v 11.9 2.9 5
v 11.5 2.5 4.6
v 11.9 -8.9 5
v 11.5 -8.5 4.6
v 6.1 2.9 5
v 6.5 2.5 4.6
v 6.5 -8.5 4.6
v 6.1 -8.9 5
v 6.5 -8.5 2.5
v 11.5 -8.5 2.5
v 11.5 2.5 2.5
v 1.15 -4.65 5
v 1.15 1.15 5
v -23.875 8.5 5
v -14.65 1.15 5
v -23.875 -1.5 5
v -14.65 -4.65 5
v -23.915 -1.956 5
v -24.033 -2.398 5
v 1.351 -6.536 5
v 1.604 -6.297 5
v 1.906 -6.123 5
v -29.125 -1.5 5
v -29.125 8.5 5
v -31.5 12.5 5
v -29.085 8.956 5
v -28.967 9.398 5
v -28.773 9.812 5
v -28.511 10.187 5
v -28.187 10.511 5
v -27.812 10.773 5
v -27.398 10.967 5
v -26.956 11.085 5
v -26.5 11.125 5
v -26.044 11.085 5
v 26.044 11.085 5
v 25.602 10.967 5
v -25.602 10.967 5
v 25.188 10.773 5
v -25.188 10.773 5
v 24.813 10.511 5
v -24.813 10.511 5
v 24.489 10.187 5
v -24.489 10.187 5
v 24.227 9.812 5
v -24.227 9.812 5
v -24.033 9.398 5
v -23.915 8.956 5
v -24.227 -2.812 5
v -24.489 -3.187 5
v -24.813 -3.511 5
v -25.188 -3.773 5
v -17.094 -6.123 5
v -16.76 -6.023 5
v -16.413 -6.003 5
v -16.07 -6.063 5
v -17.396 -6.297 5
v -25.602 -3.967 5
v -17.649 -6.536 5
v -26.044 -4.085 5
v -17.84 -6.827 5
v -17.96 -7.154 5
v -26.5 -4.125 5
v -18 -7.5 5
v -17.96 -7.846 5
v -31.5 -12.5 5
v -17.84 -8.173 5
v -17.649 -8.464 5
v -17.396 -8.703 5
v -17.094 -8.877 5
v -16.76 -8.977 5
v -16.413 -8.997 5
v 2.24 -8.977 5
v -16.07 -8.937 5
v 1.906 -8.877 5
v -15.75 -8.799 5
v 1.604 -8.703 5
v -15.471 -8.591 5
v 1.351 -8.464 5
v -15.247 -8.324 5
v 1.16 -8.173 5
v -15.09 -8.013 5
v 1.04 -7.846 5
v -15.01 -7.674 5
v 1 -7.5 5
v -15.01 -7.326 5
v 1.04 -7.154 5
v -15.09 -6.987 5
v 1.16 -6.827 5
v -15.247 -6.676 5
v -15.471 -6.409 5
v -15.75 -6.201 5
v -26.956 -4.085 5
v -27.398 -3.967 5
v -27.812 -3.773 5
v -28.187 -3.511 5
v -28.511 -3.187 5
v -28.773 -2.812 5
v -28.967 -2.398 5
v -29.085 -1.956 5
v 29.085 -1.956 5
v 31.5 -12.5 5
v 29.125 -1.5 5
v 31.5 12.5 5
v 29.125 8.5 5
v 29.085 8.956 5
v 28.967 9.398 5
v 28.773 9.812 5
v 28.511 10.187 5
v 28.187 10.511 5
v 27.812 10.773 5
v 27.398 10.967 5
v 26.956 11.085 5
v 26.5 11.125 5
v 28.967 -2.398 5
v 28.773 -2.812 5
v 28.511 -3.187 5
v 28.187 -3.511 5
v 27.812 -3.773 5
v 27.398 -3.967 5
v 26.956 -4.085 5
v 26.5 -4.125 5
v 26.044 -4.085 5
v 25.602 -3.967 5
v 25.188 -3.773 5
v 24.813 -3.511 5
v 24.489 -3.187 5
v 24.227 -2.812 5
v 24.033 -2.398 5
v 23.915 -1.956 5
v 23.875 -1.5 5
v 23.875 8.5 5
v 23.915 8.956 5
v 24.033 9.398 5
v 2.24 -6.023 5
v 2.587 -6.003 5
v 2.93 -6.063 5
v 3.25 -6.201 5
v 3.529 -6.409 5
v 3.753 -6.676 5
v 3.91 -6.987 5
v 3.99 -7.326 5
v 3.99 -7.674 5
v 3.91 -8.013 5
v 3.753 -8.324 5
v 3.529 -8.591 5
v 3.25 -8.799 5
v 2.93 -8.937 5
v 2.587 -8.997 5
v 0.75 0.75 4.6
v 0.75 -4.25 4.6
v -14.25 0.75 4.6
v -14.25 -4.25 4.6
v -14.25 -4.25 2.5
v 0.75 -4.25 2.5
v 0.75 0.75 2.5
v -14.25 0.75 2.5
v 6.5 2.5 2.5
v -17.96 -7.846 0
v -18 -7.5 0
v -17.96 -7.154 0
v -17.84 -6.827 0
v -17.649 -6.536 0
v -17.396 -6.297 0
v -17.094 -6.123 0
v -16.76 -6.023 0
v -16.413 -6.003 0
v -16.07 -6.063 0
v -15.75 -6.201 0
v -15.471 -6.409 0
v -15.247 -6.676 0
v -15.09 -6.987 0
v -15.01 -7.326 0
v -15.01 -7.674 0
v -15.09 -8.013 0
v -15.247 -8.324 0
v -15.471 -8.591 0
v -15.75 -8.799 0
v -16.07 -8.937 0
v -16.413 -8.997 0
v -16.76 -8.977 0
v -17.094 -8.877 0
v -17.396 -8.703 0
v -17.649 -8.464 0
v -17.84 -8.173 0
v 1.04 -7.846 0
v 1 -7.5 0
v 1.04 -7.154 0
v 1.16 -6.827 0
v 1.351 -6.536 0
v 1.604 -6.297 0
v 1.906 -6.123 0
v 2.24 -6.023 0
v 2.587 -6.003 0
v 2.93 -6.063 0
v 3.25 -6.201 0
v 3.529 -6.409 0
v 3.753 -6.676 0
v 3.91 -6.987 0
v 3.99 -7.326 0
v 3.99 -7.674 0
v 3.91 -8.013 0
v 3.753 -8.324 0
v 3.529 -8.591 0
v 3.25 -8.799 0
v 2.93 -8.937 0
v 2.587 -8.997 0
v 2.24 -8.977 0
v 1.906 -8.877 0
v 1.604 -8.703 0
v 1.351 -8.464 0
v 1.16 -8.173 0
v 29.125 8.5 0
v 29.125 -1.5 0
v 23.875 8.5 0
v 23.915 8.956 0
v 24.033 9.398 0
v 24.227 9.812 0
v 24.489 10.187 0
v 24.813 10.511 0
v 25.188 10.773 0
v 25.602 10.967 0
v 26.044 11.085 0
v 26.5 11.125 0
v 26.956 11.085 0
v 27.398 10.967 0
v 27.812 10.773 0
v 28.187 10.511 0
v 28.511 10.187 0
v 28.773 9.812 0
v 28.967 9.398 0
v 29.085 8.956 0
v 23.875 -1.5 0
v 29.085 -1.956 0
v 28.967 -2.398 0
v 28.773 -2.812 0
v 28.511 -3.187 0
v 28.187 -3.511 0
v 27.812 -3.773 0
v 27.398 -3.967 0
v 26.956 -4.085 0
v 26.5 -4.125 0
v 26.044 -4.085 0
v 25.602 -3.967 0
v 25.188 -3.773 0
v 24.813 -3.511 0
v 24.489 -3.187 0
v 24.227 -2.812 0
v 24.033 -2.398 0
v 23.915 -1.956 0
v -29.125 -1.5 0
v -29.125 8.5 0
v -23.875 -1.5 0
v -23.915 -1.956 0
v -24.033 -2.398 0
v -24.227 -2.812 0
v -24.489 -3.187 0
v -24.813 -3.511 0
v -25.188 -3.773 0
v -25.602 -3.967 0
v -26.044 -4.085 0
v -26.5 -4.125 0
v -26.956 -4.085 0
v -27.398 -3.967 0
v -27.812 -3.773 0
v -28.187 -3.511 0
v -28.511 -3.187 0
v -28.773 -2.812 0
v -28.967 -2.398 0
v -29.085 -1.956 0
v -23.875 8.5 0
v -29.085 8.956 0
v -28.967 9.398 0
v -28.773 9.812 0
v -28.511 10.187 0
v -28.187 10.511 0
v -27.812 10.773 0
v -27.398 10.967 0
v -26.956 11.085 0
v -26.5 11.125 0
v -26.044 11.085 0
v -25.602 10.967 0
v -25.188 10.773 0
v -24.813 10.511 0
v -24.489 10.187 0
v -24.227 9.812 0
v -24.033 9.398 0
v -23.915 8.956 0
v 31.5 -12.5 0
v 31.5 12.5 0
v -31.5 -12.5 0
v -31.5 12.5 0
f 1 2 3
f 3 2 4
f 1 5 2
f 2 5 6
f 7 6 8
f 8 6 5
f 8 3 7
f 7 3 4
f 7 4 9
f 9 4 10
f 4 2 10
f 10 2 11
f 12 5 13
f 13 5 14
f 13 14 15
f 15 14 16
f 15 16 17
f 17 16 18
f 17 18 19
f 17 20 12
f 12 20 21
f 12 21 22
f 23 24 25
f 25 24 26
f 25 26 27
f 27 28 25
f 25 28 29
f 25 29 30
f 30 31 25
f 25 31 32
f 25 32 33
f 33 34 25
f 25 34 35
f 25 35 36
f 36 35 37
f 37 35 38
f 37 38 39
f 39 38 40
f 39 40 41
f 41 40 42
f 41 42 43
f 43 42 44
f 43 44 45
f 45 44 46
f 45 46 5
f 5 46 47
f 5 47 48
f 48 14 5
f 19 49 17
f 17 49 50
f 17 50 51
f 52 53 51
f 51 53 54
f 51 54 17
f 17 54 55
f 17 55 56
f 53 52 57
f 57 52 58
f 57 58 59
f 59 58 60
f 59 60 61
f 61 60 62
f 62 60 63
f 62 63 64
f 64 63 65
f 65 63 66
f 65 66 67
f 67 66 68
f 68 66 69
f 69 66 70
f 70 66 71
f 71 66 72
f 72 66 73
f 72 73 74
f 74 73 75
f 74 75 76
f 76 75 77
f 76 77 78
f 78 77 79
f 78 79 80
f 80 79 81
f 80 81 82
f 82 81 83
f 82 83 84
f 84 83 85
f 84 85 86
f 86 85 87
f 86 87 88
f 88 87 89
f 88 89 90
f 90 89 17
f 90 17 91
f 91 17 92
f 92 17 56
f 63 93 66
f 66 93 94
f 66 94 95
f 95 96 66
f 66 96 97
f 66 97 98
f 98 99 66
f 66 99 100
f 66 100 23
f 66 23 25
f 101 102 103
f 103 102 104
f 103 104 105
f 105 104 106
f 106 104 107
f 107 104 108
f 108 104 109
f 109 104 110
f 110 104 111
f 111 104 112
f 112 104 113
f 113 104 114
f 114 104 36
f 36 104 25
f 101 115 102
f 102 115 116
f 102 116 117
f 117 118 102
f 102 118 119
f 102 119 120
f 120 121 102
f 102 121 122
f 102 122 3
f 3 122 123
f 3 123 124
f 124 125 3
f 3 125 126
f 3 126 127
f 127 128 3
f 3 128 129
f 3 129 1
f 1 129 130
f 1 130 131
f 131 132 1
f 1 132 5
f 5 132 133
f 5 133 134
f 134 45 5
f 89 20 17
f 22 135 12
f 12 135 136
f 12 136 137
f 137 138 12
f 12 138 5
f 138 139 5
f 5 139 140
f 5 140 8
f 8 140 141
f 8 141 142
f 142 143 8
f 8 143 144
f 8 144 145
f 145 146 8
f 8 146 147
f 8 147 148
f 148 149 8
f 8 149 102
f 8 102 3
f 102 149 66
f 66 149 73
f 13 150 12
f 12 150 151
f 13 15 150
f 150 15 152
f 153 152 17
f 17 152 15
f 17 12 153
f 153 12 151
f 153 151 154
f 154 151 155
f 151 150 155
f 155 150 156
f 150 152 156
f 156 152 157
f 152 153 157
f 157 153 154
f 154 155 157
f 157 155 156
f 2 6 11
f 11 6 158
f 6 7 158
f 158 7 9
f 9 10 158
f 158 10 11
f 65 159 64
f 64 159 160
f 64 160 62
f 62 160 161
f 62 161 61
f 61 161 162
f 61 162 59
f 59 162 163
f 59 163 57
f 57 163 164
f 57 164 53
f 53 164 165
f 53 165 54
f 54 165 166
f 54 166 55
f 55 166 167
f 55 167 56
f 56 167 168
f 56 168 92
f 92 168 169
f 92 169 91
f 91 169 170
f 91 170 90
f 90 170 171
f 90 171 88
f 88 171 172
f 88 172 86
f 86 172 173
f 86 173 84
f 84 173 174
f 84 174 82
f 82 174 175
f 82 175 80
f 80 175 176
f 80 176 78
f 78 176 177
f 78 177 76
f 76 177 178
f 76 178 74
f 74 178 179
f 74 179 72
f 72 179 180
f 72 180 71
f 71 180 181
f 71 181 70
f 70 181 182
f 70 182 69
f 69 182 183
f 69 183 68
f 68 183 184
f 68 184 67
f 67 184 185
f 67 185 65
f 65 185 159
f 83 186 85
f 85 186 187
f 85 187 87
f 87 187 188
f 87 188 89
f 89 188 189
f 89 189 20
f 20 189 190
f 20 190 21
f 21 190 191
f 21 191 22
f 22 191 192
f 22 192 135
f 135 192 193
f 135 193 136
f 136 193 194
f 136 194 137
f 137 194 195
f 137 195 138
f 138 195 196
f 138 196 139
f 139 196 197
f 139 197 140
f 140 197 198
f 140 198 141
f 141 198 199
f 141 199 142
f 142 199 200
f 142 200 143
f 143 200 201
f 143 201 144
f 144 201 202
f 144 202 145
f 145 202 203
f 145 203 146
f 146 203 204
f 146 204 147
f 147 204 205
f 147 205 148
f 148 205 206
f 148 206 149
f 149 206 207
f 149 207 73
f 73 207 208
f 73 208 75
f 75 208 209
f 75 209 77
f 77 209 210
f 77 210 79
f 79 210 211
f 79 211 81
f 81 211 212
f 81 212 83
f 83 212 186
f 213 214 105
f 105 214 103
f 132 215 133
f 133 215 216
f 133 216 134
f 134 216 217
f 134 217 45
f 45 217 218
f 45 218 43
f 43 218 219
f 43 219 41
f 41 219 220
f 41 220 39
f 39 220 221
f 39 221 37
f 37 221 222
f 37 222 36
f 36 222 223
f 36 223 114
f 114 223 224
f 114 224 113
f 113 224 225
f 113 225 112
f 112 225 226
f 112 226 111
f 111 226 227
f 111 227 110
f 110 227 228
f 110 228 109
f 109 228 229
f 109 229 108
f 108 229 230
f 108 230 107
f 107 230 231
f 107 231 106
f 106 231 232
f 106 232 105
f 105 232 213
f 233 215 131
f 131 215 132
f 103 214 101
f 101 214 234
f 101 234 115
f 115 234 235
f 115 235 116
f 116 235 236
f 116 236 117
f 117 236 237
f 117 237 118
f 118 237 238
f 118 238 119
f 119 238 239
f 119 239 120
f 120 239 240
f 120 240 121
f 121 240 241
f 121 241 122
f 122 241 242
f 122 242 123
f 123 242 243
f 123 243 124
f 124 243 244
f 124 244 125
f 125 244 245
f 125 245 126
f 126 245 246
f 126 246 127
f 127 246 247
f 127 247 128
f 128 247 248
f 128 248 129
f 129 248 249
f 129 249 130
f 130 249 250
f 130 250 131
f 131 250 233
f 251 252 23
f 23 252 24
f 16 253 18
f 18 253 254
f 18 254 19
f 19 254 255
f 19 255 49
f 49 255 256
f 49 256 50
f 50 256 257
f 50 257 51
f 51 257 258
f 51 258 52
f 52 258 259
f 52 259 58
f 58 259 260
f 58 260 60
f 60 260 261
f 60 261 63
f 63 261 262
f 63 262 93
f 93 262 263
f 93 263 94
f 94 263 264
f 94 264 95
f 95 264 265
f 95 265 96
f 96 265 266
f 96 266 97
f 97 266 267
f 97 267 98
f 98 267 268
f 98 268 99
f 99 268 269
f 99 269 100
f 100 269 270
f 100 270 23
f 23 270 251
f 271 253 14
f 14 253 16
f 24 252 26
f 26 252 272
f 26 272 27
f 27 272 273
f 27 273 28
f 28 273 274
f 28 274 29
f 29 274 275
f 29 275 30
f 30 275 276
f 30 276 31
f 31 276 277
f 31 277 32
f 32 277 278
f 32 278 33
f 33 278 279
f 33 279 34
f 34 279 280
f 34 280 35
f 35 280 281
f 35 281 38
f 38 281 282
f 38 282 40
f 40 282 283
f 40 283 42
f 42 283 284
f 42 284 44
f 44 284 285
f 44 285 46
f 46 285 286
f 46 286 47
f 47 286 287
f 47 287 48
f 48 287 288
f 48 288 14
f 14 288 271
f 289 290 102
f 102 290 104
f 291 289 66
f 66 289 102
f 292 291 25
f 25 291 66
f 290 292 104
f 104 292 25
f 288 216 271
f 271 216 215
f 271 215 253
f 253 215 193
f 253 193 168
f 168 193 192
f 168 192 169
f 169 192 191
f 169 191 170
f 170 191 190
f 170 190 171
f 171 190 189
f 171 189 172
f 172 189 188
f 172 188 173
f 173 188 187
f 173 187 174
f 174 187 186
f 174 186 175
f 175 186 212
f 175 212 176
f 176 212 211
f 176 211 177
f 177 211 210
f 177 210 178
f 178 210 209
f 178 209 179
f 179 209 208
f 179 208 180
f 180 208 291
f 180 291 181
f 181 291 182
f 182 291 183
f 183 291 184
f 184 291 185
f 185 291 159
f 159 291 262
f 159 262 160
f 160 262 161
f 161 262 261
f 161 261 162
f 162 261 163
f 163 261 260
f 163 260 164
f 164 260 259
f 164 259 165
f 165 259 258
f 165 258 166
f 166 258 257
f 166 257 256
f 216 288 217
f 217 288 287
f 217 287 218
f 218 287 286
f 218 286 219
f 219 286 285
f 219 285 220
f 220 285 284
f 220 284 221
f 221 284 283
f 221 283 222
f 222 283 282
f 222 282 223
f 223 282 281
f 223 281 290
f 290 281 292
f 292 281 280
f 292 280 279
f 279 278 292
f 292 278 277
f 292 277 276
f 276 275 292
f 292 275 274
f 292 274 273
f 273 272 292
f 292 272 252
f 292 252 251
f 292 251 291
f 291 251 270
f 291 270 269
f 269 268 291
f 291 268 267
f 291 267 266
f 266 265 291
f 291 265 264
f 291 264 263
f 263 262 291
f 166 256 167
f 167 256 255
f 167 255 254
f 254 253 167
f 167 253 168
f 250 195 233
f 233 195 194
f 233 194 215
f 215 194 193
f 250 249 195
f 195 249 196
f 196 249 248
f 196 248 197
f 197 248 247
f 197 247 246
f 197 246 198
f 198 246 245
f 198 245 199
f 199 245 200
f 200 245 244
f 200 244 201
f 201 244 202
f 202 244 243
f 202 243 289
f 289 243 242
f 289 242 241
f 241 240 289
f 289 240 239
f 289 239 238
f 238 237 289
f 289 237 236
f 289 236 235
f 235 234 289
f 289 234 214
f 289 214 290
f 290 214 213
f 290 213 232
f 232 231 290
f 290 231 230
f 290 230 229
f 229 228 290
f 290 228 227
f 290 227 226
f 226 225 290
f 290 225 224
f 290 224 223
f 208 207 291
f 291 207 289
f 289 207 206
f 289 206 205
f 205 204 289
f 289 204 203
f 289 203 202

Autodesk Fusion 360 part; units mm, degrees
sketch "Sketch1" plane through (0, 0, 0) normal (0, 0, 1) x (1, 0, 0)
  line L0 (31.5, -12.5) -> (-31.5, -12.5)
  line L1 (-31.5, -12.5) -> (-31.5, 12.5)
  line L2 (-31.5, 12.5) -> (31.5, 12.5)
  line L3 (31.5, 12.5) -> (31.5, -12.5)
  line L4 (31.5, -12.5) -> (-31.5, 12.5) construction
  line L5 (-31.5, -12.5) -> (31.5, 12.5) construction
  circle A0 centre (-16.5, -7.5) radius 1.5
  circle A1 centre (2.5, -7.5) radius 1.5
  line L6 (-29.125, 8.5) -> (-29.125, -1.5)
  arc A2 (-29.125, -1.5) -> (-23.875, -1.5) centre (-26.5, -1.5) ccw
  line L7 (-23.875, -1.5) -> (-23.875, 8.5)
  arc A3 (-23.875, 8.5) -> (-29.125, 8.5) centre (-26.5, 8.5) ccw
  line L8 (-26.5, 8.5) -> (-26.5, -1.5) construction
  line L9 (29.125, -1.5) -> (29.125, 8.5)
  arc A4 (29.125, 8.5) -> (23.875, 8.5) centre (26.5, 8.5) ccw
  line L10 (23.875, 8.5) -> (23.875, -1.5)
  arc A5 (23.875, -1.5) -> (29.125, -1.5) centre (26.5, -1.5) ccw
  line L11 (26.5, -1.5) -> (26.5, 8.5) construction
  line L12 (-14.25, 0.75) -> (0.75, 0.75)
  line L13 (0.75, 0.75) -> (0.75, -4.25)
  line L14 (0.75, -4.25) -> (-14.25, -4.25)
  line L15 (-14.25, -4.25) -> (-14.25, 0.75)
  line L16 (-14.25, -1.75) -> (0.75, -1.75) construction
  line L17 (6.5, 2.5) -> (11.5, 2.5)
  line L18 (11.5, 2.5) -> (11.5, -8.5)
  line L19 (11.5, -8.5) -> (6.5, -8.5)
  line L20 (6.5, -8.5) -> (6.5, 2.5)
  line L21 (9, 2.5) -> (9, -8.5) construction
  line L22 (-6.75, 0.75) -> (-6.75, -4.25) construction
  dimension "d1" = 63
  dimension "d2" = 25
  dimension "d3" = 3
  dimension "d4" = 3
  dimension "d5" = 19
  dimension "d6" = 5
  dimension "d7" = 5
  dimension "d8" = 15
  dimension "d9" = 5.25
  dimension "d10" = 5.25
  dimension "d11" = 5
  dimension "d12" = 5
  dimension "d15" = 4
  dimension "d16" = 4
  dimension "d17" = 10
  dimension "d18" = 10
  dimension "d19" = 5
  dimension "d20" = 5.75
  dimension "d21" = 5
  dimension "d22" = 15
  dimension "d23" = 2.25
  dimension "d24" = 11
  dimension "d25" = 6.5
  dimension "d26" = 1
extrude "Extrude1" add sketch "Sketch1" along normal blind 5 contours L0 L1 L2 L3 | L12 L13 L14 L15 | L17 L18 L19 L20
extrude "Extrude2" cut sketch "Sketch1" against normal blind 2.5 from surface at 5 contours L12 L13 L14 L15 | L17 L18 L19 L20
chamfer "Chamfer1" distance 0.4 angle 45 8 edges at (-6.75, 0.75, 5) (-14.25, -1.75, 5) (-6.75, -4.25, 5) (0.75, -1.75, 5) (9, 2.5, 5) (6.5, -3, 5) (11.5, -3, 5) (9, -8.5, 5)
equation "d7 = d6"
equation "d10 = d9"
equation "d12 = d11"
equation "d16 = d15"
equation "d18 = d17"
